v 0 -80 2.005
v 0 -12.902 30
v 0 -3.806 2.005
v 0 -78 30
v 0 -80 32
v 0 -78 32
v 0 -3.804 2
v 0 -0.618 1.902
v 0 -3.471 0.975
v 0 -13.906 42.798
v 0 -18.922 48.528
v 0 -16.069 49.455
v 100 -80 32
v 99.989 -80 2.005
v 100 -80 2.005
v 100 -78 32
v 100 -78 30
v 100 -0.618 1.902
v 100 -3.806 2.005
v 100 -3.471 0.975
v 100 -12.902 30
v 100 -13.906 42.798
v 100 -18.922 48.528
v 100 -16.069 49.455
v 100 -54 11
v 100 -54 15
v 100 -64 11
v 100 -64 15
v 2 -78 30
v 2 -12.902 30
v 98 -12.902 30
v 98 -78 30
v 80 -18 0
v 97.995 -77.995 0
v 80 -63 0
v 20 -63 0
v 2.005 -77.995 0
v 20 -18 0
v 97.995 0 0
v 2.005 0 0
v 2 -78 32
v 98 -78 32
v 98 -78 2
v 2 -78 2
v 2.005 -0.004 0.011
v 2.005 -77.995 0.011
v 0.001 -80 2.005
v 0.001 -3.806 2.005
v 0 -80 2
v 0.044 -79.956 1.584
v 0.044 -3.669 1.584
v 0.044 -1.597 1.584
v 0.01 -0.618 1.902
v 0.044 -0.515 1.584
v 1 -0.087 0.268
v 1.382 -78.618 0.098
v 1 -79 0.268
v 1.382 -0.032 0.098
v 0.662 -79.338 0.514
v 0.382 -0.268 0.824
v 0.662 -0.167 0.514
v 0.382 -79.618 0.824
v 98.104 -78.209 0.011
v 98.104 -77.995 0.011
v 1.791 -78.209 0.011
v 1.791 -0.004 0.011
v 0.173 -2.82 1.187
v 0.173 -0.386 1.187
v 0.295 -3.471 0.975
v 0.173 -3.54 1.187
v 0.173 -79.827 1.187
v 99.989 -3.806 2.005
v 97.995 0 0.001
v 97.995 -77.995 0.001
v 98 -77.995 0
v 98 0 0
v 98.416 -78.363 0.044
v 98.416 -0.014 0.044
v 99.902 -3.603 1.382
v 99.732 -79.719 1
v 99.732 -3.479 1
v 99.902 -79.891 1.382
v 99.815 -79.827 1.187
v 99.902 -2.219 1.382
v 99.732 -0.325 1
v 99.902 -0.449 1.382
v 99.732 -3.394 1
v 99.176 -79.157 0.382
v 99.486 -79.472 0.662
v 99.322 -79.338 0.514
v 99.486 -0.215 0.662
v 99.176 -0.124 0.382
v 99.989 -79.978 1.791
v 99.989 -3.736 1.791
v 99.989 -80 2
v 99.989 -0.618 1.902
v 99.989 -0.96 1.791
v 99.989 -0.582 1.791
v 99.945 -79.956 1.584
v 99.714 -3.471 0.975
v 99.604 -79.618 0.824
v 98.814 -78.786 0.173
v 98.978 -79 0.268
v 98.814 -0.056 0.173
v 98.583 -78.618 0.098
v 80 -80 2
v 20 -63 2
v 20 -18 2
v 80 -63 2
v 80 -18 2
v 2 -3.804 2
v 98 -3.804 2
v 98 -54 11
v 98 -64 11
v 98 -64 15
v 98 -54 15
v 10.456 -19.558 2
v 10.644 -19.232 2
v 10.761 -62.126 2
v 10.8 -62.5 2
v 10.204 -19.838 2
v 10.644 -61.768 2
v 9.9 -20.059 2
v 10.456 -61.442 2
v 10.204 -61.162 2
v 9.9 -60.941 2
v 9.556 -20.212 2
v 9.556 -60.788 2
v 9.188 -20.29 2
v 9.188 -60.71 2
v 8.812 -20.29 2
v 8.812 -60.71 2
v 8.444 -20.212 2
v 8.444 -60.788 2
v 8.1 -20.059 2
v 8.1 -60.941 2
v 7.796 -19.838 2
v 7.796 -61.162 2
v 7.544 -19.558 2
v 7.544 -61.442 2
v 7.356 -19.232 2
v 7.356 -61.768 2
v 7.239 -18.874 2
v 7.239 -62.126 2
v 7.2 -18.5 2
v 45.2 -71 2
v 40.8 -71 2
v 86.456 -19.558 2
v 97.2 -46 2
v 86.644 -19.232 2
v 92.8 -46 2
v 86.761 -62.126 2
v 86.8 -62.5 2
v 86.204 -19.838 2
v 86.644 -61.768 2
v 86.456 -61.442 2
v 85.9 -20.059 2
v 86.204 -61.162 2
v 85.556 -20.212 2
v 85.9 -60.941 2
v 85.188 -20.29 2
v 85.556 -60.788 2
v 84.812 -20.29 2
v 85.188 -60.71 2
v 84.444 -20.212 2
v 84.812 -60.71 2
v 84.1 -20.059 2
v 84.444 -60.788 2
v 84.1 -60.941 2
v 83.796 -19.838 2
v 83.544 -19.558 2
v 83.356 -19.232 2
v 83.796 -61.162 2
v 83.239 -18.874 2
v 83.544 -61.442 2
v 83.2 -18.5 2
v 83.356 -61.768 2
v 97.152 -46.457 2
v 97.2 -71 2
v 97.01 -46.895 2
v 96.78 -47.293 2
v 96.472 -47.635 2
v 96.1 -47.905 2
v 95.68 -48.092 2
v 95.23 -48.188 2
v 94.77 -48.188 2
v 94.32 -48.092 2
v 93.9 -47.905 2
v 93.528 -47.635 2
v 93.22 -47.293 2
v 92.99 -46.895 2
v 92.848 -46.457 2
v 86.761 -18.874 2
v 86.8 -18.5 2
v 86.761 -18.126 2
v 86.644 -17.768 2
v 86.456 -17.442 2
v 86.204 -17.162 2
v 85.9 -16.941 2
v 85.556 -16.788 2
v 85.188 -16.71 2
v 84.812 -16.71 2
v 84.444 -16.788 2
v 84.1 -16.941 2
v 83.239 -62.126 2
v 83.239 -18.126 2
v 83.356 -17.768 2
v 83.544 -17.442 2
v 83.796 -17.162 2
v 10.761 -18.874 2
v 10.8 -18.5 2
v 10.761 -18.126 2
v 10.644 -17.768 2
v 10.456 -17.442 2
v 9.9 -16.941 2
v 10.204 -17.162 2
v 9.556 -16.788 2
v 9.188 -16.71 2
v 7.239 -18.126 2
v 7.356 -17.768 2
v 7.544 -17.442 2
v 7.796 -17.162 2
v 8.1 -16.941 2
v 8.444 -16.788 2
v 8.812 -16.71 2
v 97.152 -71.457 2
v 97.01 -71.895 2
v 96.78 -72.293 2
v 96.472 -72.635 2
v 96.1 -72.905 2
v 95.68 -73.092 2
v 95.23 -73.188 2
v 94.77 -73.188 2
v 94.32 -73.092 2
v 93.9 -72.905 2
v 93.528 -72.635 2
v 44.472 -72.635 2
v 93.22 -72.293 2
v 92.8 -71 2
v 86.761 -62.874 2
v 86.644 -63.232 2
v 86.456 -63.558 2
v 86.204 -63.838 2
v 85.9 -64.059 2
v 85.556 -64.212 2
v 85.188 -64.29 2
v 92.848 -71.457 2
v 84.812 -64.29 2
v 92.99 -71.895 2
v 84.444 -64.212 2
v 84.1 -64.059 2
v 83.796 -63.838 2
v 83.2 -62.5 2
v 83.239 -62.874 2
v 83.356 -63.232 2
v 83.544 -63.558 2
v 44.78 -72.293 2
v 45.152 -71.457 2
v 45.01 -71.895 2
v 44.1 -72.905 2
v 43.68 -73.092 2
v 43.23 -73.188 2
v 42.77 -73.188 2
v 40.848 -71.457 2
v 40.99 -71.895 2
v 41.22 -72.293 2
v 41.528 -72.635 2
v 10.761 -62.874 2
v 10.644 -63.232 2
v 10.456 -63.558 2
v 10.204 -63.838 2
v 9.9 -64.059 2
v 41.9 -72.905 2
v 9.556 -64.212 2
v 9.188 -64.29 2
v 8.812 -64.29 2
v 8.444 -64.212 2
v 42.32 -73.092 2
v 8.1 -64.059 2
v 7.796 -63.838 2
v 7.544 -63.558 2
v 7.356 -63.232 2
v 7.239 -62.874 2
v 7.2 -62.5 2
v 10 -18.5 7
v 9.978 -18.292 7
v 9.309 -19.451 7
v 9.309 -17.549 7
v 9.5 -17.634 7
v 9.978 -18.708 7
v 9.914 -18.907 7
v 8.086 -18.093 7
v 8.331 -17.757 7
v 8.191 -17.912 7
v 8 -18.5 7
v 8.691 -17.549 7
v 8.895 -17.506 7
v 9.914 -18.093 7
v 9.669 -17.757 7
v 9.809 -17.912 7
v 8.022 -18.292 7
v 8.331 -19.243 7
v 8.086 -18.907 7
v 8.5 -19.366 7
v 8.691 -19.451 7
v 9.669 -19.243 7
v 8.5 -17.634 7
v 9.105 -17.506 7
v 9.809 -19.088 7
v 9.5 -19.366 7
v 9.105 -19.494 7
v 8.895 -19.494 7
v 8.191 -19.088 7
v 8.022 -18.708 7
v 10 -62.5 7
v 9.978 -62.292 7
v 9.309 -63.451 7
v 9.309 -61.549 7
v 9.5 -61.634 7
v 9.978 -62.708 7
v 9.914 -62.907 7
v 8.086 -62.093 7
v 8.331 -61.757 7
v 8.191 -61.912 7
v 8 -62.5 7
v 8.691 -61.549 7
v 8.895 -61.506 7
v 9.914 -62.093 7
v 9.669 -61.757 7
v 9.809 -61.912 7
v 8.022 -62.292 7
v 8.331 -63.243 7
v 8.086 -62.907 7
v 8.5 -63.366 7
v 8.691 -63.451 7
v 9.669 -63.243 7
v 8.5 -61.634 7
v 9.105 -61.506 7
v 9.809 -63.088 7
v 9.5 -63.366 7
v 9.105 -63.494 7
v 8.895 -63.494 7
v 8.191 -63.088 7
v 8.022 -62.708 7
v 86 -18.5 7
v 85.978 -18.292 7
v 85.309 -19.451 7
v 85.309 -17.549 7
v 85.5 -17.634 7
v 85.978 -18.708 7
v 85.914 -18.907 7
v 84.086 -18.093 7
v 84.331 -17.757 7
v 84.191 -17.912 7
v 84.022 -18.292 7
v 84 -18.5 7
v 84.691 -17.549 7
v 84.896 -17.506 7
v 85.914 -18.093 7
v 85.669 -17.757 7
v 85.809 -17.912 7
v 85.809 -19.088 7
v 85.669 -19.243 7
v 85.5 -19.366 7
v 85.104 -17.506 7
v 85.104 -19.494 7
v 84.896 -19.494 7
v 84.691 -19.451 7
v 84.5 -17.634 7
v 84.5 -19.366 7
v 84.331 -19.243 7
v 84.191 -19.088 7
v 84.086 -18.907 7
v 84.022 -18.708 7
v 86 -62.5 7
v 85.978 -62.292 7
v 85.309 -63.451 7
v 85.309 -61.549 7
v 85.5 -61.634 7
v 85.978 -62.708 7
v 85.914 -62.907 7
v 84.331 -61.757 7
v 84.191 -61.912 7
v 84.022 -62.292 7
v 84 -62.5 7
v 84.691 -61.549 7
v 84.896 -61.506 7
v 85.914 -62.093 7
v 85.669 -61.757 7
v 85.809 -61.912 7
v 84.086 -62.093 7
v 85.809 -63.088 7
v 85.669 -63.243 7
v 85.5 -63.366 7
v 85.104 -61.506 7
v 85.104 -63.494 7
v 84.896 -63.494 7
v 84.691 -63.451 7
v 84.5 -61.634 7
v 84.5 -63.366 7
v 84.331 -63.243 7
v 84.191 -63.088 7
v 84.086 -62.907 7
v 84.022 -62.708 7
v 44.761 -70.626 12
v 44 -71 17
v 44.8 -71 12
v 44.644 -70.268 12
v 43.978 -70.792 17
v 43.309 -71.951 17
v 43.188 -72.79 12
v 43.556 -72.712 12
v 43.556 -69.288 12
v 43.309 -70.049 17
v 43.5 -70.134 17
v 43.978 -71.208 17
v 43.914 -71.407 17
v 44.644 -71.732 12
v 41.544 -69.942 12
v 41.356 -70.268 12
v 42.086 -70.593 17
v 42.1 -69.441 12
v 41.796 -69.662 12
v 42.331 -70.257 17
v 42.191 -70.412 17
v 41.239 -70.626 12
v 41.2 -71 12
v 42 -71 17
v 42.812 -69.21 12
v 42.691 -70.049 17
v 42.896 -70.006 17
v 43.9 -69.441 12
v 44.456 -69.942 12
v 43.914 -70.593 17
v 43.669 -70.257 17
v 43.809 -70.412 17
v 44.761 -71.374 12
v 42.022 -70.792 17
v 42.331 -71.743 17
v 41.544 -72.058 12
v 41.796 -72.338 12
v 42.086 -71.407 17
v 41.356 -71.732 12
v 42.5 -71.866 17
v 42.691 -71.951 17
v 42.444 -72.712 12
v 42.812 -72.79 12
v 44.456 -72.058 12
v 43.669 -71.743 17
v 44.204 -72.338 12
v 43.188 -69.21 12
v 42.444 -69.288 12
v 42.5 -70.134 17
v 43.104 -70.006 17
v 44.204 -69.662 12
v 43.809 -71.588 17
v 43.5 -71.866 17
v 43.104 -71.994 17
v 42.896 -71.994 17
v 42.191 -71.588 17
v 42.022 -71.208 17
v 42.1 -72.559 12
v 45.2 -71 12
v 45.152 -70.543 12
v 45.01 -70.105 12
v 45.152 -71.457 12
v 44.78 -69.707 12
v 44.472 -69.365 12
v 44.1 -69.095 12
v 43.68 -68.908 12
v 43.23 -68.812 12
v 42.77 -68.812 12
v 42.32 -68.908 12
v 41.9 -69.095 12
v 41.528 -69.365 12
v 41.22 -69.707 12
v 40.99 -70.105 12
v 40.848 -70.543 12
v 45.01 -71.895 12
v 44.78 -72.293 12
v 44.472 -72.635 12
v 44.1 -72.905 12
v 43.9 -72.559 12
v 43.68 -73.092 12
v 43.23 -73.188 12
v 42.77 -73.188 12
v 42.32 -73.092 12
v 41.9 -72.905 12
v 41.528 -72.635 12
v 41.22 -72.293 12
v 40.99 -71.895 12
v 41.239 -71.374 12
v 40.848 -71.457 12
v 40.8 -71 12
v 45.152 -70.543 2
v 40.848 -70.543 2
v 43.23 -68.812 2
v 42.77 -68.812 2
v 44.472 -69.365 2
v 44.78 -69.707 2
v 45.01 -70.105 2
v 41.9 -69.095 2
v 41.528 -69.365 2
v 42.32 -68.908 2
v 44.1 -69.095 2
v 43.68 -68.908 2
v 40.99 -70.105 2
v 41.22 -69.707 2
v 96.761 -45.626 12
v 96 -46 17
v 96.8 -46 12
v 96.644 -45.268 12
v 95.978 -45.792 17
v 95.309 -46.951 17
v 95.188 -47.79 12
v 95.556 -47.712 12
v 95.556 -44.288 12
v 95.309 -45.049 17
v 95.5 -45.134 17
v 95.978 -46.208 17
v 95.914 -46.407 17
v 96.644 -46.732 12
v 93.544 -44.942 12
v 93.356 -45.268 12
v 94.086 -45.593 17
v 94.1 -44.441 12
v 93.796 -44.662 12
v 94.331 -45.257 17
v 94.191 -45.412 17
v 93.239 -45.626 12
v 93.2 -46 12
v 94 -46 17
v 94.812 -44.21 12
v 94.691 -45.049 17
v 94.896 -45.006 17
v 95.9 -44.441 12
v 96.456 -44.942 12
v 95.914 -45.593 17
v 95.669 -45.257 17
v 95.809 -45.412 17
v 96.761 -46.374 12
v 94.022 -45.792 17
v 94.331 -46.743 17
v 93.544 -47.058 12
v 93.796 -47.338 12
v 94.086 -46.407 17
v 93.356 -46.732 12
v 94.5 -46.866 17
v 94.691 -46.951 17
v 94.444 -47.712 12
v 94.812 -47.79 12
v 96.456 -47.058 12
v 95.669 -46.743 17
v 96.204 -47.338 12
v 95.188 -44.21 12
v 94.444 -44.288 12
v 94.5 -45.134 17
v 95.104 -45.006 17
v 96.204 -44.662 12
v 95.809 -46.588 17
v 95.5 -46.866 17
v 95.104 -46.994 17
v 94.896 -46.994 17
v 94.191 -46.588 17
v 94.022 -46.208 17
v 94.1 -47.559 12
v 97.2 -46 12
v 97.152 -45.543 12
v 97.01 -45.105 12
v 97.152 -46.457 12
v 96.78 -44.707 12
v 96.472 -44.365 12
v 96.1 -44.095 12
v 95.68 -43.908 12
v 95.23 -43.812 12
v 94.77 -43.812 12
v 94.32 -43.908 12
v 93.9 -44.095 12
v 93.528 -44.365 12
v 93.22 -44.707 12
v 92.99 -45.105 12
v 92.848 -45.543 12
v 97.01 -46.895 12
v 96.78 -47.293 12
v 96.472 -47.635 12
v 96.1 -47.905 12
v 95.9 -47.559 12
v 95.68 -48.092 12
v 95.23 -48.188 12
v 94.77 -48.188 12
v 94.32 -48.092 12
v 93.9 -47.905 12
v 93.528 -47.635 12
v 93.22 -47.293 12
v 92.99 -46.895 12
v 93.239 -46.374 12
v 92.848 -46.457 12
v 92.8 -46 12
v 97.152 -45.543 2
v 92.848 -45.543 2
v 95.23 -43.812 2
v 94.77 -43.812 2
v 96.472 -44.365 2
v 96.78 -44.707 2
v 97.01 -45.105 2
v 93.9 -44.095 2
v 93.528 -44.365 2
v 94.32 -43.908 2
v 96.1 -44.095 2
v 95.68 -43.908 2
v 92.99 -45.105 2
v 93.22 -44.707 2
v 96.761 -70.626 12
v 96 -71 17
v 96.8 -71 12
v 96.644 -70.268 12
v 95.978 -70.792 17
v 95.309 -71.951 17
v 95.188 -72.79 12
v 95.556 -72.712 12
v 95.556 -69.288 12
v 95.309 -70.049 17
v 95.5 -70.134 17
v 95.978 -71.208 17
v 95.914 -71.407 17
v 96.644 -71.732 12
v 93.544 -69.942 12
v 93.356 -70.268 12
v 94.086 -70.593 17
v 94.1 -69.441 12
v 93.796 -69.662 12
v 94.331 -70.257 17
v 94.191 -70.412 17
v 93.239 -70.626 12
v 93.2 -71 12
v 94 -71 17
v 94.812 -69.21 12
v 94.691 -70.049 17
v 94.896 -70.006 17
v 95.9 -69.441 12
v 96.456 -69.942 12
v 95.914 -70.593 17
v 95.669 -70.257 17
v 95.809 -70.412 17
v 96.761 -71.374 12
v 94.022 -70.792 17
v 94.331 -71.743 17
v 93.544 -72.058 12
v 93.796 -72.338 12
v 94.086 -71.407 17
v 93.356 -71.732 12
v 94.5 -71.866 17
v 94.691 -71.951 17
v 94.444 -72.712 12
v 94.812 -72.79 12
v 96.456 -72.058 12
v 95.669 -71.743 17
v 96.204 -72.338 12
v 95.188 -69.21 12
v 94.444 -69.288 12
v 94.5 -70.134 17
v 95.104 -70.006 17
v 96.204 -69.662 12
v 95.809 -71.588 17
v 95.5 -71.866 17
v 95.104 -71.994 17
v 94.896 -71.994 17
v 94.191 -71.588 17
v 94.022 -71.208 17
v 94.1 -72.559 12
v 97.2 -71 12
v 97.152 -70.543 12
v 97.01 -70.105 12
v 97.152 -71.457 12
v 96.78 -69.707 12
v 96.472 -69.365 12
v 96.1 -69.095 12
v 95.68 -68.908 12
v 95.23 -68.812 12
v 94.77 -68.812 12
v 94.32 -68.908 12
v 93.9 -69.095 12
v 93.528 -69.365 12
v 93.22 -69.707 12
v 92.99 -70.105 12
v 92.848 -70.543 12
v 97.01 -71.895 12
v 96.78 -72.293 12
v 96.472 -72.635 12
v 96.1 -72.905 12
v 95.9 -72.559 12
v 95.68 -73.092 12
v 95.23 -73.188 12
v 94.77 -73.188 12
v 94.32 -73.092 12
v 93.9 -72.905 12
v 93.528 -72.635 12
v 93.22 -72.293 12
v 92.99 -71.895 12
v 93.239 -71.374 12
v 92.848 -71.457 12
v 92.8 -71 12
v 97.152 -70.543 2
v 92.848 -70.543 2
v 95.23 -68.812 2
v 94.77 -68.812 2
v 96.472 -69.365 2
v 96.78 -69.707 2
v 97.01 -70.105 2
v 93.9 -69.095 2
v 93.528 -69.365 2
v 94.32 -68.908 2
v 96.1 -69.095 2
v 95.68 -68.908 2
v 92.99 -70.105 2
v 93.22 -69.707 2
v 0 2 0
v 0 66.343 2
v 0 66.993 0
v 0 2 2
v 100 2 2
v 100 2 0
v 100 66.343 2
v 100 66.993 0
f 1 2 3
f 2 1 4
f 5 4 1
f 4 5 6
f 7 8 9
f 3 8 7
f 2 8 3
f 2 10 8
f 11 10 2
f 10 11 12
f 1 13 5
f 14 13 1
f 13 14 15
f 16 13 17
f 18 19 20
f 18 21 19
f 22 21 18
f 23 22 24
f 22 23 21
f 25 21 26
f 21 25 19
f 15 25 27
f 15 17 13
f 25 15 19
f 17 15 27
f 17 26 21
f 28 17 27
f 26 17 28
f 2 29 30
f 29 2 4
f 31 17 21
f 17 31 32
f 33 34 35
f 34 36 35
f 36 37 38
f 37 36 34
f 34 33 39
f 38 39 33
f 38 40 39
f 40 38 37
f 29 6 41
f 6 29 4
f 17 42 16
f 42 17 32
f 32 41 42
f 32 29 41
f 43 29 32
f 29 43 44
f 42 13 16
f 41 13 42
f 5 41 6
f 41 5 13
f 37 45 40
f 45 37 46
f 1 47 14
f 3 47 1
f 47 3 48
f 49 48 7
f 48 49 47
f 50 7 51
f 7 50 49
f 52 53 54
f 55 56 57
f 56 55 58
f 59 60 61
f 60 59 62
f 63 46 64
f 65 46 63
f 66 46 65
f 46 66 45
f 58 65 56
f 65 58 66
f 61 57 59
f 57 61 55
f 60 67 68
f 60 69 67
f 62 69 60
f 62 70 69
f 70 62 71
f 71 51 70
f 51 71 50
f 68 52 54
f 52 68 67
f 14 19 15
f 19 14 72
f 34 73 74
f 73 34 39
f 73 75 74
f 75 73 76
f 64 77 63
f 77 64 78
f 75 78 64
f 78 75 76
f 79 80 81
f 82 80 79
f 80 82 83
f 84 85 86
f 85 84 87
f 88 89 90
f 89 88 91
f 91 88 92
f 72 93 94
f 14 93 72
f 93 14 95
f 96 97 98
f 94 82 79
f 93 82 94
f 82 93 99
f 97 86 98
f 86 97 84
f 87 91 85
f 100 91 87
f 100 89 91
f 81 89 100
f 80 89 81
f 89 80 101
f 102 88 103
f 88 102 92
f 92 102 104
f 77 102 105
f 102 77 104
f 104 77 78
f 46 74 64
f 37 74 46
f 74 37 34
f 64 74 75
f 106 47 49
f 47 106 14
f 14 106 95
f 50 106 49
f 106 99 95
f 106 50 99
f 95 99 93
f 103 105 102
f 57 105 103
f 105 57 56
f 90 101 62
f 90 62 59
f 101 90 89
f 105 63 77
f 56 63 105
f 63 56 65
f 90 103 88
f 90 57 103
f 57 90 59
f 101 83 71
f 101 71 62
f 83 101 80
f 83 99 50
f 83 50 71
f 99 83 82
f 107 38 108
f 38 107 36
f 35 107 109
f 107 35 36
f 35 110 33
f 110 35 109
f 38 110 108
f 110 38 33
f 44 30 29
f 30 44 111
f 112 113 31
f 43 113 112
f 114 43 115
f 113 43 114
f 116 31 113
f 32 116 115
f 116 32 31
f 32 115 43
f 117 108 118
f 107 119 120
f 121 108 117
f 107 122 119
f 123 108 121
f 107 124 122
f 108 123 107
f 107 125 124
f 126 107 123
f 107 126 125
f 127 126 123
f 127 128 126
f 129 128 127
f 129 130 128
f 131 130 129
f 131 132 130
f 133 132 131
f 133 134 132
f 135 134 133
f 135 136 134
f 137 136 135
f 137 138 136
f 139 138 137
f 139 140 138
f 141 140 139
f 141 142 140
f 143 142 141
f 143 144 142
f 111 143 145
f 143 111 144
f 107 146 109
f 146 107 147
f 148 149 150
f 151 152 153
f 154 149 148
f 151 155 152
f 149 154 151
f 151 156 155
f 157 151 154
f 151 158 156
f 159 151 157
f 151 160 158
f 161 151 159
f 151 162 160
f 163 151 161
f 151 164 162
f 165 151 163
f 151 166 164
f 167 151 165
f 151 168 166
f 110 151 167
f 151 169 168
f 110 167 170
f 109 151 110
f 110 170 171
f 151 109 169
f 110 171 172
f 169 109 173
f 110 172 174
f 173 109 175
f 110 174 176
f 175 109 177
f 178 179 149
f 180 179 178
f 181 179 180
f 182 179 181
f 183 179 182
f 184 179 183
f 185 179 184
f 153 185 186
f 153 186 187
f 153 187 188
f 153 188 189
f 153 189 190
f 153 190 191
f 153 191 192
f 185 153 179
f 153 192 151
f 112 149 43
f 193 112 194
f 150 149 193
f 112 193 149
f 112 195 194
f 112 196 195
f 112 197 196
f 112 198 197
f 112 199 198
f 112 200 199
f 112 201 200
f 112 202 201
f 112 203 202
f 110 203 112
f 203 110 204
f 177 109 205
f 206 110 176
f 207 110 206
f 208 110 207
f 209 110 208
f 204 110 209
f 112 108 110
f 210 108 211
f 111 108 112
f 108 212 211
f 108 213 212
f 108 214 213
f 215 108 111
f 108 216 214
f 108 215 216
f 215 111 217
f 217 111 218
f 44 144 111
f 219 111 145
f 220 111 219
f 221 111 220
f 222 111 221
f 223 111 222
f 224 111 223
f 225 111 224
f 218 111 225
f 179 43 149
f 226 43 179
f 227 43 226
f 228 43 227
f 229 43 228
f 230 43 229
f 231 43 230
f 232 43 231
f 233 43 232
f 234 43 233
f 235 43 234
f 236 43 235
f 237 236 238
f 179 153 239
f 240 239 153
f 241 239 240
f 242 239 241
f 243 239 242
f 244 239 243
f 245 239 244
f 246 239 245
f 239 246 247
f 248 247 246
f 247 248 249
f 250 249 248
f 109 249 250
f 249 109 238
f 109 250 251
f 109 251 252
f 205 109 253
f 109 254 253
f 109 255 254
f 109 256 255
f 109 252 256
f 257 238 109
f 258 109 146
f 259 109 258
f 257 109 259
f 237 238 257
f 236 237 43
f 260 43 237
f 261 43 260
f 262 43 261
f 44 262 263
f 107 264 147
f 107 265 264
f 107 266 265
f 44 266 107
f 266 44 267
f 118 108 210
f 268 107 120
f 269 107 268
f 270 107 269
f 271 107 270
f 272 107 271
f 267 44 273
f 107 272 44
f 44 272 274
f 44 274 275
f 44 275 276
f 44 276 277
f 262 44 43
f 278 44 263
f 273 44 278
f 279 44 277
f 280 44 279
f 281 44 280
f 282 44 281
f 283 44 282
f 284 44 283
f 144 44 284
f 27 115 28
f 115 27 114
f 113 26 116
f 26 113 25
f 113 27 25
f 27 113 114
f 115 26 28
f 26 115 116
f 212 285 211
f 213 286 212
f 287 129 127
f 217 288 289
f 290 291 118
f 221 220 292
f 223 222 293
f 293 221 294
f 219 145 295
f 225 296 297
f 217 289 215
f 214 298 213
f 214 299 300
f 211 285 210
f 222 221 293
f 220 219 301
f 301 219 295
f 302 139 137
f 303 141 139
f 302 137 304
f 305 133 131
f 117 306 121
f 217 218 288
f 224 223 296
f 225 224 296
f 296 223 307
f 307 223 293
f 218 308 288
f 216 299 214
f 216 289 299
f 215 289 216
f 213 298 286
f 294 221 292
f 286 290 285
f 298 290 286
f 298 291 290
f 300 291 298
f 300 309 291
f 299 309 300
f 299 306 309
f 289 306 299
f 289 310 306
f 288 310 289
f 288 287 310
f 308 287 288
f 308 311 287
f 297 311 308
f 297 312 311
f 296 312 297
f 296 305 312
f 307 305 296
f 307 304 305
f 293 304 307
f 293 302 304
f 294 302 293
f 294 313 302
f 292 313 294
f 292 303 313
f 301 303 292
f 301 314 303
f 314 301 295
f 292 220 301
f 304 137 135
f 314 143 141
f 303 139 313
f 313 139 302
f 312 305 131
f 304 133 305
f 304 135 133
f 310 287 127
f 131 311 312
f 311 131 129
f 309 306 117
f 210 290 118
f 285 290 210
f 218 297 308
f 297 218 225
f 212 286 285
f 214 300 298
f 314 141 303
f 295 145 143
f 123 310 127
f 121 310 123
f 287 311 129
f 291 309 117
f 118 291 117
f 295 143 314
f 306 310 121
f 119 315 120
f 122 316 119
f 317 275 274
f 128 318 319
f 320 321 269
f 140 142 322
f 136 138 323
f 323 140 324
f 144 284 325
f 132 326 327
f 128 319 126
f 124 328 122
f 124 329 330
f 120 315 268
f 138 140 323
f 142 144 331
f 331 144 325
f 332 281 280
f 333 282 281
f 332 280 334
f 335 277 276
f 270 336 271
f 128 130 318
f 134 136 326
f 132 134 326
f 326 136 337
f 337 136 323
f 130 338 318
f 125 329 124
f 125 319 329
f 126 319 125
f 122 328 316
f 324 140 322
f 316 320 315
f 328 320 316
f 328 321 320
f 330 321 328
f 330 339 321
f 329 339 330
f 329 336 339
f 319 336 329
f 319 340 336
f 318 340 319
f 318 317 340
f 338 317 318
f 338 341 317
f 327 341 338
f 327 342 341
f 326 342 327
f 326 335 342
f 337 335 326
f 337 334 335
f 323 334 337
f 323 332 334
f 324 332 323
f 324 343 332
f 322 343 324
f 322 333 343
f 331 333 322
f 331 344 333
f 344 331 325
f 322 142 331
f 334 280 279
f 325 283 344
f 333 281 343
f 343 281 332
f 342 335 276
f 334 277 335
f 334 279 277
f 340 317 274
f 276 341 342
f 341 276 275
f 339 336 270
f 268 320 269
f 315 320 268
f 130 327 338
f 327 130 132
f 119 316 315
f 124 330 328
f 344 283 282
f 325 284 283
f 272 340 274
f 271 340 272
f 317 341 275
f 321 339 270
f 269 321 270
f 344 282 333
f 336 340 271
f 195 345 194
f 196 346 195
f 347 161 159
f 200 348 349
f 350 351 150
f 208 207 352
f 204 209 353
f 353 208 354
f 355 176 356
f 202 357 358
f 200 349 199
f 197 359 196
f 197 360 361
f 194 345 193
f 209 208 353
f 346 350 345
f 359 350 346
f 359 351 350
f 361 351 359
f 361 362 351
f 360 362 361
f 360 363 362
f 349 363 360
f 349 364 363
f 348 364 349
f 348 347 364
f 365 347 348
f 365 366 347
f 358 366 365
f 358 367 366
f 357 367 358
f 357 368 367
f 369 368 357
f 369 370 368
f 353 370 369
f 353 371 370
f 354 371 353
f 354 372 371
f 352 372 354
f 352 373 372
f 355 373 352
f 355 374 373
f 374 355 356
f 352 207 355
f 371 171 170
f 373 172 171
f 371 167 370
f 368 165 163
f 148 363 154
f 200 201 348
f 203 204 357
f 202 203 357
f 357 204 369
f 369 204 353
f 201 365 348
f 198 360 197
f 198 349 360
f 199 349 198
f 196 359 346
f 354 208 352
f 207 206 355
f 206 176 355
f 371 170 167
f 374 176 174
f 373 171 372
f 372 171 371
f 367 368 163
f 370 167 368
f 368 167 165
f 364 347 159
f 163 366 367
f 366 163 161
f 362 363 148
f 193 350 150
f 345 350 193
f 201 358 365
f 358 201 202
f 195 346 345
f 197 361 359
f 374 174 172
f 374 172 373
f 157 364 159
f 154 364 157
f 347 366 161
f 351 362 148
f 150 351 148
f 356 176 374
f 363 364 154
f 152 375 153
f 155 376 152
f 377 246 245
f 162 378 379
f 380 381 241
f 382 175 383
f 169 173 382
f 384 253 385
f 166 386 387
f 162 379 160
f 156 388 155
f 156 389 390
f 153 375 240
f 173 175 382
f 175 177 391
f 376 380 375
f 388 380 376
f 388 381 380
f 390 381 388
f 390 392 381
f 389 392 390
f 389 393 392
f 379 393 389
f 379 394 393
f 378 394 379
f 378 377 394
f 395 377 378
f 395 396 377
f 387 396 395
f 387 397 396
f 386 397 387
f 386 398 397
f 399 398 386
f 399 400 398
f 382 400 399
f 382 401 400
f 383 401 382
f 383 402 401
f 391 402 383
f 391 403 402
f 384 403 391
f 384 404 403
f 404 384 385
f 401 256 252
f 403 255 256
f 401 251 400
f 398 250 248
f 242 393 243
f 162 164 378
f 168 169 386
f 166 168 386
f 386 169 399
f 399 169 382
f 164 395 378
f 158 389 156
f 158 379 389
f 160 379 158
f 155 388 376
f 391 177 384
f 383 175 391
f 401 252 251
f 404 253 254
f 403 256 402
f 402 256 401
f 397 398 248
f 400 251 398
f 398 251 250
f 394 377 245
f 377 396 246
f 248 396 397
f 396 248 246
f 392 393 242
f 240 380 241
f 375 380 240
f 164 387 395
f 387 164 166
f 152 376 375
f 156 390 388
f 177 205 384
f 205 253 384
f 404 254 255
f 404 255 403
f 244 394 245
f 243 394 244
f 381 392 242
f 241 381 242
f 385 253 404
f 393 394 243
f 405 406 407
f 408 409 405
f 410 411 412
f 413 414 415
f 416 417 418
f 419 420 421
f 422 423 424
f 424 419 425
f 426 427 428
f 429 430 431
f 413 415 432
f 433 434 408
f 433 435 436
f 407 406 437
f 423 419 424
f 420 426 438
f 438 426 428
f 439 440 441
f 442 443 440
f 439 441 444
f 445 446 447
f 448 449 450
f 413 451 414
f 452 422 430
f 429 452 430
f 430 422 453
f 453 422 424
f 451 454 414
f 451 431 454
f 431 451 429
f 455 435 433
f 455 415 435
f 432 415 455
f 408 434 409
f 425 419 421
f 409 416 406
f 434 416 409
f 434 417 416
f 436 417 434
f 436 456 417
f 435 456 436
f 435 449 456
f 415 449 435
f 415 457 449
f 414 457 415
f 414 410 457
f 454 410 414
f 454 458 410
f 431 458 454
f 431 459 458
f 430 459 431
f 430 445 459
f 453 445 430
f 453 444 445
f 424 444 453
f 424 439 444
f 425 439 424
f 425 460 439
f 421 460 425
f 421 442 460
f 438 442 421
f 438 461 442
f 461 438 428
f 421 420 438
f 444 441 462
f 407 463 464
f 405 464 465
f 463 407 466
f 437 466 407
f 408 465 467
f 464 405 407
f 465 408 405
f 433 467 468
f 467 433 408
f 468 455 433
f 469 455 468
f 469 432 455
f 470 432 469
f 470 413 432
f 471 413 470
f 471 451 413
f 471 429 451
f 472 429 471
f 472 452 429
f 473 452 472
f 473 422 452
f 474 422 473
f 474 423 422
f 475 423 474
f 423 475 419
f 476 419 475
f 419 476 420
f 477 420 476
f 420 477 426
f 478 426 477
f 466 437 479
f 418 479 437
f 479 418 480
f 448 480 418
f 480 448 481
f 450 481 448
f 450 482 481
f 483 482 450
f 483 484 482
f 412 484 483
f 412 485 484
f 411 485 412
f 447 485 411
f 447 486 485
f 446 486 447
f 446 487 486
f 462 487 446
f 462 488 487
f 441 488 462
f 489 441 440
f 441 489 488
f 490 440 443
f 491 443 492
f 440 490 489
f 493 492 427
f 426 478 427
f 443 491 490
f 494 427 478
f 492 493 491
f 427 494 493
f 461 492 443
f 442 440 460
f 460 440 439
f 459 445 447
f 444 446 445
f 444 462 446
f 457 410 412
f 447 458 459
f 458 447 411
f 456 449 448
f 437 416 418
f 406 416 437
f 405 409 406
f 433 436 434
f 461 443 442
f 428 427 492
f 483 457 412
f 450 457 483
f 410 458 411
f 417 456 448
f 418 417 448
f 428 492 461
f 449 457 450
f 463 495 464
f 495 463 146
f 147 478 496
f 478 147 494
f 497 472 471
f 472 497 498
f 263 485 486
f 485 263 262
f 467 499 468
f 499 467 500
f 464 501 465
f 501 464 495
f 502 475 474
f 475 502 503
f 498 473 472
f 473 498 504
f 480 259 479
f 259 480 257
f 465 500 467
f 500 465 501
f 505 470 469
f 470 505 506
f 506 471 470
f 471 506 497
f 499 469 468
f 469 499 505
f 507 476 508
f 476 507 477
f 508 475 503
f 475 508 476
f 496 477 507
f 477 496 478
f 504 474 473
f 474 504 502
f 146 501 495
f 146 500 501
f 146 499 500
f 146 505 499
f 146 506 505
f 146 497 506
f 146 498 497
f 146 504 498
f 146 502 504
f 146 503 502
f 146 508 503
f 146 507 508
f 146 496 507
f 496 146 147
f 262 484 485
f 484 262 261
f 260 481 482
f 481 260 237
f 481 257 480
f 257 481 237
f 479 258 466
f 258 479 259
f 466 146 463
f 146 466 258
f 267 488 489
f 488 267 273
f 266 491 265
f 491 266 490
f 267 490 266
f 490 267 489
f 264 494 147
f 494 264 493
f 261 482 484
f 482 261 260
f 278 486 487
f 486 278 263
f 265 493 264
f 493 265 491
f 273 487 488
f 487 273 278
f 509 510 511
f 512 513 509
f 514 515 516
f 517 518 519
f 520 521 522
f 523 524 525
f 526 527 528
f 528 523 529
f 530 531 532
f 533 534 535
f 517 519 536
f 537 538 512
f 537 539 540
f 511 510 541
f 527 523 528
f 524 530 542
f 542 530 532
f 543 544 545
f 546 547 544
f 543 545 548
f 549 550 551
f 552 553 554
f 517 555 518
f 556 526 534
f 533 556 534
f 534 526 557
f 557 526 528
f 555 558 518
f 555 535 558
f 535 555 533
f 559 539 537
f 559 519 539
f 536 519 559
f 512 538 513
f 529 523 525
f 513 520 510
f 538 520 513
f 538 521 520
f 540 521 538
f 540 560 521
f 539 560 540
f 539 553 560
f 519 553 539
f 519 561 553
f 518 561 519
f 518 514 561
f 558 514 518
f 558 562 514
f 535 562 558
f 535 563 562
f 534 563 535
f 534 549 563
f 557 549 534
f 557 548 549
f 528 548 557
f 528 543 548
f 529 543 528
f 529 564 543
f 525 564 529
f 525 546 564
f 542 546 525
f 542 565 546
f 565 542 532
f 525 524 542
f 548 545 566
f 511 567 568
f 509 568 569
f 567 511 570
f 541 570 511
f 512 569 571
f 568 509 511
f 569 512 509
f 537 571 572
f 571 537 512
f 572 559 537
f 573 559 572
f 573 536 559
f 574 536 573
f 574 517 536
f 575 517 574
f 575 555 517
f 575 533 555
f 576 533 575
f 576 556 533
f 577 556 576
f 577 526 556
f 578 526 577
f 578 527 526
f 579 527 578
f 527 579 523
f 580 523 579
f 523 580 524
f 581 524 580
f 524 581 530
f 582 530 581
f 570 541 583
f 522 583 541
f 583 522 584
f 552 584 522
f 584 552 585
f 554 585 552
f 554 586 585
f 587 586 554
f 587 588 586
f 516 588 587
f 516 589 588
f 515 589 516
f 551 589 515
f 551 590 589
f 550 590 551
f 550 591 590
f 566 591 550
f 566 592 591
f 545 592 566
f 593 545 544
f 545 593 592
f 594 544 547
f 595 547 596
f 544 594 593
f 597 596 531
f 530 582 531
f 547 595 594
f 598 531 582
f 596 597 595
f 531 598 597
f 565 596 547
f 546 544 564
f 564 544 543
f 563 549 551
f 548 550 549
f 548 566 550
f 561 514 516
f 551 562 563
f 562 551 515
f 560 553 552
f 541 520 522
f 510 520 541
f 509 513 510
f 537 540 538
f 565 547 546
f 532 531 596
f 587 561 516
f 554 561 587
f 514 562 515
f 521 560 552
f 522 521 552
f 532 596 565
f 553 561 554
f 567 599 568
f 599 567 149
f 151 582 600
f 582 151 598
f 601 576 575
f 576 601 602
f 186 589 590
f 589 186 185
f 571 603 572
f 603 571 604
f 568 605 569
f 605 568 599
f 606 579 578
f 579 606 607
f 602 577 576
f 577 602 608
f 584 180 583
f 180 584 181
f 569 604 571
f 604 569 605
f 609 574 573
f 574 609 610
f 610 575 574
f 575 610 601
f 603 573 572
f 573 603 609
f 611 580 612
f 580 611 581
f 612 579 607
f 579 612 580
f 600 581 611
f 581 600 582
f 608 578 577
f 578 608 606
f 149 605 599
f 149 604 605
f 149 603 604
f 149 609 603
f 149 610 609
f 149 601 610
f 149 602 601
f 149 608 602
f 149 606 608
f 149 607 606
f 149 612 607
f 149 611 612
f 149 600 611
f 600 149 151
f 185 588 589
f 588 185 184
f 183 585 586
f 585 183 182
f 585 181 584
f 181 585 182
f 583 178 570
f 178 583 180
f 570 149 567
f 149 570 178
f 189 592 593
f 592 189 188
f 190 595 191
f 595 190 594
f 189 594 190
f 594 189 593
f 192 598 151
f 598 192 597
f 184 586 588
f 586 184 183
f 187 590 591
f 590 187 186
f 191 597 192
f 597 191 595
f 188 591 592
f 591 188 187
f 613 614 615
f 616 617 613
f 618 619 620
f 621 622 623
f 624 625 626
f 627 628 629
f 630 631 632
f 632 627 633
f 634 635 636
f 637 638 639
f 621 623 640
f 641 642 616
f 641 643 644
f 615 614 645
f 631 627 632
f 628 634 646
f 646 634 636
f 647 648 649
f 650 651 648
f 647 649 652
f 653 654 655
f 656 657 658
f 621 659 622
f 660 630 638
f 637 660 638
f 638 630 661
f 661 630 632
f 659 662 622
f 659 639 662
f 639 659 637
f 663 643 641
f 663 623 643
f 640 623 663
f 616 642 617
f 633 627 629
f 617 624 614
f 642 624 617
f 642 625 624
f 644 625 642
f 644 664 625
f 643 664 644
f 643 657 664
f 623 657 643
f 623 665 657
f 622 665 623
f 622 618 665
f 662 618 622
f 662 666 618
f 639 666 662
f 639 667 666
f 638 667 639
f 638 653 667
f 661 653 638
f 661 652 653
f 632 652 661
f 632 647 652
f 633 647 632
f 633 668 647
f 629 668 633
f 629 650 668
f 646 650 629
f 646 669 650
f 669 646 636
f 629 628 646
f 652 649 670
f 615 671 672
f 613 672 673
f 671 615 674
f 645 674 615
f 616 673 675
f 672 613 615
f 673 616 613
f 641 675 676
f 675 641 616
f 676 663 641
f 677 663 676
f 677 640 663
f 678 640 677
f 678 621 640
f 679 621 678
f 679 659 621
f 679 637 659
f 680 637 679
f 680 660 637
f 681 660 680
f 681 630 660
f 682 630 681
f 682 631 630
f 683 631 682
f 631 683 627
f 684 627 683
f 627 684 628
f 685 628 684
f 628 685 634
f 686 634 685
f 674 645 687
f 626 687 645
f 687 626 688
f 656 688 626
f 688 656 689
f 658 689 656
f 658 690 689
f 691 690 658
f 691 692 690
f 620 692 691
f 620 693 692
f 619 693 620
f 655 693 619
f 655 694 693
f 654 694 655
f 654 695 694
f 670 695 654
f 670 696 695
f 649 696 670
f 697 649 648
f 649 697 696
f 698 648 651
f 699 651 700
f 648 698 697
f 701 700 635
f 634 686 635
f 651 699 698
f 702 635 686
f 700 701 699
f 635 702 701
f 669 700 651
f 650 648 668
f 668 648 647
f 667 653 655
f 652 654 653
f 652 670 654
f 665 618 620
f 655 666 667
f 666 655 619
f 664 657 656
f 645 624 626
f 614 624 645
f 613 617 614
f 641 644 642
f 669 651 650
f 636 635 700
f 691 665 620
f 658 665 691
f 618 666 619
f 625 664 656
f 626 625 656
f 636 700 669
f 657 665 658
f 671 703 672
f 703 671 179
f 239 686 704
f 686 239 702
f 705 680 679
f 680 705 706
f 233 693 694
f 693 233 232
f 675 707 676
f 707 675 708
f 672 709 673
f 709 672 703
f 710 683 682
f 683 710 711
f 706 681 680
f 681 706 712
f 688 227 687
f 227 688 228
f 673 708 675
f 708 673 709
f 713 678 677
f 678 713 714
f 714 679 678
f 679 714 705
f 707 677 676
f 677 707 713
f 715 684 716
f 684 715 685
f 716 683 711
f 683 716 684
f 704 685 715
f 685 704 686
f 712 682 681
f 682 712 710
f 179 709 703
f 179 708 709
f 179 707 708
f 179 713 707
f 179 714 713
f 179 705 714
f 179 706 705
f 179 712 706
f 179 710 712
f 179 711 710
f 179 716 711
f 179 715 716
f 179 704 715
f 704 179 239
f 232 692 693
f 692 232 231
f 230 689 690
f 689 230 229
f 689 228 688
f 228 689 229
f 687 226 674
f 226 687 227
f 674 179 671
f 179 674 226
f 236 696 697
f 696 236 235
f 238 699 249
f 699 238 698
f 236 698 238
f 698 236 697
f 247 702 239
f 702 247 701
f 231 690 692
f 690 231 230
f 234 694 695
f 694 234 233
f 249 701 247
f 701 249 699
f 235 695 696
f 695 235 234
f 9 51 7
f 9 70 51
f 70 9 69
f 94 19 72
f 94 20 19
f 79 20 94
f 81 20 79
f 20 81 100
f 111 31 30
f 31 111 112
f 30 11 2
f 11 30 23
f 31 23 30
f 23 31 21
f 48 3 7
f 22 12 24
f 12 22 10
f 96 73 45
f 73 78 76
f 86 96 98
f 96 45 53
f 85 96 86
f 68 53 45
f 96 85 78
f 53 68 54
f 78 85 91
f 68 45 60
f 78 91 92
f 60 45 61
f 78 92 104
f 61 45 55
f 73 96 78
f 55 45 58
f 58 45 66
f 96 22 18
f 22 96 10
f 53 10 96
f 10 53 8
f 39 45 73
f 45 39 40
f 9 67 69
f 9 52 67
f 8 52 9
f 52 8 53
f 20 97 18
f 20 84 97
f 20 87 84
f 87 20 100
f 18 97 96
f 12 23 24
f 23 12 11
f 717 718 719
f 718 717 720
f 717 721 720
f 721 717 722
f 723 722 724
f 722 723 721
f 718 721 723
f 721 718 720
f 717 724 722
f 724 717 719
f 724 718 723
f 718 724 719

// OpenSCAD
module fillet(r, h) {
    translate([r / 2, r / 2, 0])

        difference() {
            cube([r + 0.01, r + 0.01, h], center = true);

            translate([r/2, r/2, 0])
                cylinder(r = r, h = h + 1, center = true);

        }
}

$fs= 0.1;
case_width=100;
case_height=80;
display_width=60;
display_height=45;
hole_distance_h=76;
hole_distance_v=44;
case_depth=30;

rotate([108,0,0])
 {
difference() {
    union() { 
        rotate ([-18,0,0]) {// display
            
            difference() {
                union() {
                    cube([case_width, case_depth, case_height]);
                    translate([0,case_depth,case_height-2]) cube([case_width, 2, 2]);
                }
                fillet(2,case_height*2+1);
                translate([case_width,0,0]) rotate([0,0,90]) fillet(2,case_height*2+1);
                translate ([80,0,case_height]) rotate([0,90,0]) fillet(2,case_height*2+1);
                //translate([16,-0.1,4]) cube([80, 0.5, 15]);
                translate([case_width/2-display_width/2,-0.1,18]) cube([display_width, 2.2, display_height]);
                translate([2,2,2]) cube([case_width-4, case_depth+0.1, case_height-4]);
                translate([case_width-2.1,11,case_height-26]) cube([2.2,4,10]);
                // rotate([90,0,0]) translate([15, 6,-0.5]) {
                //     linear_extrude(1) text("HODLDeck", font = "Liberation Sans", size=8);
                // }
            }
            

            translate([9,2,18.5]) {
                rotate([-90,0,0]) cylinder(5,1.8, 1.0);
                translate([0,0,hole_distance_v]) rotate([-90,0,0]) cylinder(5,1.8, 1.0);
                translate([hole_distance_h,0,0]) rotate([-90,0,0]) cylinder(5,1.8, 1.0);
                translate([hole_distance_h,0,hole_distance_v]) rotate([-90,0,0]) cylinder(5,1.8, 1.0);
            }

            translate([43,12,46]) {
                translate([0,0,25]) rotate([-90,0,0]) {
                    cylinder(5,1.8, 1.0);
                    translate([0,0,-10]) cylinder(10,2.2, 2.2);
                }
                translate([52,0,0]) rotate([-90,0,0]) {
                    cylinder(5,1.8, 1.0);
                    translate([0,0,-10]) cylinder(10,2.2, 2.2);
                }
                translate([52,0,25]) rotate([-90,0,0]) {
                    cylinder(5,1.8, 1.0);
                    translate([0,0,-10]) cylinder(10,2.2, 2.2);
                }
            }
        }
        translate([0,2,0]) cube([case_width, 50, 3]); //base
    }
    translate([-0.1,0,-10]) cube([case_width+0.2, 45, 10]); //remove overhang
}
  
}
 translate([0,case_height,case_depth*-1]) rotate ([108,0,0]) {
  difference() {
        rotate ([-18,0,0]) {// display
            translate([0,case_depth,-2]) cube([case_width, 2, case_height]);
        }
                translate([-0.1,2,-16.9]) cube([case_width+0.2, 50, 20]);

    }
 }
